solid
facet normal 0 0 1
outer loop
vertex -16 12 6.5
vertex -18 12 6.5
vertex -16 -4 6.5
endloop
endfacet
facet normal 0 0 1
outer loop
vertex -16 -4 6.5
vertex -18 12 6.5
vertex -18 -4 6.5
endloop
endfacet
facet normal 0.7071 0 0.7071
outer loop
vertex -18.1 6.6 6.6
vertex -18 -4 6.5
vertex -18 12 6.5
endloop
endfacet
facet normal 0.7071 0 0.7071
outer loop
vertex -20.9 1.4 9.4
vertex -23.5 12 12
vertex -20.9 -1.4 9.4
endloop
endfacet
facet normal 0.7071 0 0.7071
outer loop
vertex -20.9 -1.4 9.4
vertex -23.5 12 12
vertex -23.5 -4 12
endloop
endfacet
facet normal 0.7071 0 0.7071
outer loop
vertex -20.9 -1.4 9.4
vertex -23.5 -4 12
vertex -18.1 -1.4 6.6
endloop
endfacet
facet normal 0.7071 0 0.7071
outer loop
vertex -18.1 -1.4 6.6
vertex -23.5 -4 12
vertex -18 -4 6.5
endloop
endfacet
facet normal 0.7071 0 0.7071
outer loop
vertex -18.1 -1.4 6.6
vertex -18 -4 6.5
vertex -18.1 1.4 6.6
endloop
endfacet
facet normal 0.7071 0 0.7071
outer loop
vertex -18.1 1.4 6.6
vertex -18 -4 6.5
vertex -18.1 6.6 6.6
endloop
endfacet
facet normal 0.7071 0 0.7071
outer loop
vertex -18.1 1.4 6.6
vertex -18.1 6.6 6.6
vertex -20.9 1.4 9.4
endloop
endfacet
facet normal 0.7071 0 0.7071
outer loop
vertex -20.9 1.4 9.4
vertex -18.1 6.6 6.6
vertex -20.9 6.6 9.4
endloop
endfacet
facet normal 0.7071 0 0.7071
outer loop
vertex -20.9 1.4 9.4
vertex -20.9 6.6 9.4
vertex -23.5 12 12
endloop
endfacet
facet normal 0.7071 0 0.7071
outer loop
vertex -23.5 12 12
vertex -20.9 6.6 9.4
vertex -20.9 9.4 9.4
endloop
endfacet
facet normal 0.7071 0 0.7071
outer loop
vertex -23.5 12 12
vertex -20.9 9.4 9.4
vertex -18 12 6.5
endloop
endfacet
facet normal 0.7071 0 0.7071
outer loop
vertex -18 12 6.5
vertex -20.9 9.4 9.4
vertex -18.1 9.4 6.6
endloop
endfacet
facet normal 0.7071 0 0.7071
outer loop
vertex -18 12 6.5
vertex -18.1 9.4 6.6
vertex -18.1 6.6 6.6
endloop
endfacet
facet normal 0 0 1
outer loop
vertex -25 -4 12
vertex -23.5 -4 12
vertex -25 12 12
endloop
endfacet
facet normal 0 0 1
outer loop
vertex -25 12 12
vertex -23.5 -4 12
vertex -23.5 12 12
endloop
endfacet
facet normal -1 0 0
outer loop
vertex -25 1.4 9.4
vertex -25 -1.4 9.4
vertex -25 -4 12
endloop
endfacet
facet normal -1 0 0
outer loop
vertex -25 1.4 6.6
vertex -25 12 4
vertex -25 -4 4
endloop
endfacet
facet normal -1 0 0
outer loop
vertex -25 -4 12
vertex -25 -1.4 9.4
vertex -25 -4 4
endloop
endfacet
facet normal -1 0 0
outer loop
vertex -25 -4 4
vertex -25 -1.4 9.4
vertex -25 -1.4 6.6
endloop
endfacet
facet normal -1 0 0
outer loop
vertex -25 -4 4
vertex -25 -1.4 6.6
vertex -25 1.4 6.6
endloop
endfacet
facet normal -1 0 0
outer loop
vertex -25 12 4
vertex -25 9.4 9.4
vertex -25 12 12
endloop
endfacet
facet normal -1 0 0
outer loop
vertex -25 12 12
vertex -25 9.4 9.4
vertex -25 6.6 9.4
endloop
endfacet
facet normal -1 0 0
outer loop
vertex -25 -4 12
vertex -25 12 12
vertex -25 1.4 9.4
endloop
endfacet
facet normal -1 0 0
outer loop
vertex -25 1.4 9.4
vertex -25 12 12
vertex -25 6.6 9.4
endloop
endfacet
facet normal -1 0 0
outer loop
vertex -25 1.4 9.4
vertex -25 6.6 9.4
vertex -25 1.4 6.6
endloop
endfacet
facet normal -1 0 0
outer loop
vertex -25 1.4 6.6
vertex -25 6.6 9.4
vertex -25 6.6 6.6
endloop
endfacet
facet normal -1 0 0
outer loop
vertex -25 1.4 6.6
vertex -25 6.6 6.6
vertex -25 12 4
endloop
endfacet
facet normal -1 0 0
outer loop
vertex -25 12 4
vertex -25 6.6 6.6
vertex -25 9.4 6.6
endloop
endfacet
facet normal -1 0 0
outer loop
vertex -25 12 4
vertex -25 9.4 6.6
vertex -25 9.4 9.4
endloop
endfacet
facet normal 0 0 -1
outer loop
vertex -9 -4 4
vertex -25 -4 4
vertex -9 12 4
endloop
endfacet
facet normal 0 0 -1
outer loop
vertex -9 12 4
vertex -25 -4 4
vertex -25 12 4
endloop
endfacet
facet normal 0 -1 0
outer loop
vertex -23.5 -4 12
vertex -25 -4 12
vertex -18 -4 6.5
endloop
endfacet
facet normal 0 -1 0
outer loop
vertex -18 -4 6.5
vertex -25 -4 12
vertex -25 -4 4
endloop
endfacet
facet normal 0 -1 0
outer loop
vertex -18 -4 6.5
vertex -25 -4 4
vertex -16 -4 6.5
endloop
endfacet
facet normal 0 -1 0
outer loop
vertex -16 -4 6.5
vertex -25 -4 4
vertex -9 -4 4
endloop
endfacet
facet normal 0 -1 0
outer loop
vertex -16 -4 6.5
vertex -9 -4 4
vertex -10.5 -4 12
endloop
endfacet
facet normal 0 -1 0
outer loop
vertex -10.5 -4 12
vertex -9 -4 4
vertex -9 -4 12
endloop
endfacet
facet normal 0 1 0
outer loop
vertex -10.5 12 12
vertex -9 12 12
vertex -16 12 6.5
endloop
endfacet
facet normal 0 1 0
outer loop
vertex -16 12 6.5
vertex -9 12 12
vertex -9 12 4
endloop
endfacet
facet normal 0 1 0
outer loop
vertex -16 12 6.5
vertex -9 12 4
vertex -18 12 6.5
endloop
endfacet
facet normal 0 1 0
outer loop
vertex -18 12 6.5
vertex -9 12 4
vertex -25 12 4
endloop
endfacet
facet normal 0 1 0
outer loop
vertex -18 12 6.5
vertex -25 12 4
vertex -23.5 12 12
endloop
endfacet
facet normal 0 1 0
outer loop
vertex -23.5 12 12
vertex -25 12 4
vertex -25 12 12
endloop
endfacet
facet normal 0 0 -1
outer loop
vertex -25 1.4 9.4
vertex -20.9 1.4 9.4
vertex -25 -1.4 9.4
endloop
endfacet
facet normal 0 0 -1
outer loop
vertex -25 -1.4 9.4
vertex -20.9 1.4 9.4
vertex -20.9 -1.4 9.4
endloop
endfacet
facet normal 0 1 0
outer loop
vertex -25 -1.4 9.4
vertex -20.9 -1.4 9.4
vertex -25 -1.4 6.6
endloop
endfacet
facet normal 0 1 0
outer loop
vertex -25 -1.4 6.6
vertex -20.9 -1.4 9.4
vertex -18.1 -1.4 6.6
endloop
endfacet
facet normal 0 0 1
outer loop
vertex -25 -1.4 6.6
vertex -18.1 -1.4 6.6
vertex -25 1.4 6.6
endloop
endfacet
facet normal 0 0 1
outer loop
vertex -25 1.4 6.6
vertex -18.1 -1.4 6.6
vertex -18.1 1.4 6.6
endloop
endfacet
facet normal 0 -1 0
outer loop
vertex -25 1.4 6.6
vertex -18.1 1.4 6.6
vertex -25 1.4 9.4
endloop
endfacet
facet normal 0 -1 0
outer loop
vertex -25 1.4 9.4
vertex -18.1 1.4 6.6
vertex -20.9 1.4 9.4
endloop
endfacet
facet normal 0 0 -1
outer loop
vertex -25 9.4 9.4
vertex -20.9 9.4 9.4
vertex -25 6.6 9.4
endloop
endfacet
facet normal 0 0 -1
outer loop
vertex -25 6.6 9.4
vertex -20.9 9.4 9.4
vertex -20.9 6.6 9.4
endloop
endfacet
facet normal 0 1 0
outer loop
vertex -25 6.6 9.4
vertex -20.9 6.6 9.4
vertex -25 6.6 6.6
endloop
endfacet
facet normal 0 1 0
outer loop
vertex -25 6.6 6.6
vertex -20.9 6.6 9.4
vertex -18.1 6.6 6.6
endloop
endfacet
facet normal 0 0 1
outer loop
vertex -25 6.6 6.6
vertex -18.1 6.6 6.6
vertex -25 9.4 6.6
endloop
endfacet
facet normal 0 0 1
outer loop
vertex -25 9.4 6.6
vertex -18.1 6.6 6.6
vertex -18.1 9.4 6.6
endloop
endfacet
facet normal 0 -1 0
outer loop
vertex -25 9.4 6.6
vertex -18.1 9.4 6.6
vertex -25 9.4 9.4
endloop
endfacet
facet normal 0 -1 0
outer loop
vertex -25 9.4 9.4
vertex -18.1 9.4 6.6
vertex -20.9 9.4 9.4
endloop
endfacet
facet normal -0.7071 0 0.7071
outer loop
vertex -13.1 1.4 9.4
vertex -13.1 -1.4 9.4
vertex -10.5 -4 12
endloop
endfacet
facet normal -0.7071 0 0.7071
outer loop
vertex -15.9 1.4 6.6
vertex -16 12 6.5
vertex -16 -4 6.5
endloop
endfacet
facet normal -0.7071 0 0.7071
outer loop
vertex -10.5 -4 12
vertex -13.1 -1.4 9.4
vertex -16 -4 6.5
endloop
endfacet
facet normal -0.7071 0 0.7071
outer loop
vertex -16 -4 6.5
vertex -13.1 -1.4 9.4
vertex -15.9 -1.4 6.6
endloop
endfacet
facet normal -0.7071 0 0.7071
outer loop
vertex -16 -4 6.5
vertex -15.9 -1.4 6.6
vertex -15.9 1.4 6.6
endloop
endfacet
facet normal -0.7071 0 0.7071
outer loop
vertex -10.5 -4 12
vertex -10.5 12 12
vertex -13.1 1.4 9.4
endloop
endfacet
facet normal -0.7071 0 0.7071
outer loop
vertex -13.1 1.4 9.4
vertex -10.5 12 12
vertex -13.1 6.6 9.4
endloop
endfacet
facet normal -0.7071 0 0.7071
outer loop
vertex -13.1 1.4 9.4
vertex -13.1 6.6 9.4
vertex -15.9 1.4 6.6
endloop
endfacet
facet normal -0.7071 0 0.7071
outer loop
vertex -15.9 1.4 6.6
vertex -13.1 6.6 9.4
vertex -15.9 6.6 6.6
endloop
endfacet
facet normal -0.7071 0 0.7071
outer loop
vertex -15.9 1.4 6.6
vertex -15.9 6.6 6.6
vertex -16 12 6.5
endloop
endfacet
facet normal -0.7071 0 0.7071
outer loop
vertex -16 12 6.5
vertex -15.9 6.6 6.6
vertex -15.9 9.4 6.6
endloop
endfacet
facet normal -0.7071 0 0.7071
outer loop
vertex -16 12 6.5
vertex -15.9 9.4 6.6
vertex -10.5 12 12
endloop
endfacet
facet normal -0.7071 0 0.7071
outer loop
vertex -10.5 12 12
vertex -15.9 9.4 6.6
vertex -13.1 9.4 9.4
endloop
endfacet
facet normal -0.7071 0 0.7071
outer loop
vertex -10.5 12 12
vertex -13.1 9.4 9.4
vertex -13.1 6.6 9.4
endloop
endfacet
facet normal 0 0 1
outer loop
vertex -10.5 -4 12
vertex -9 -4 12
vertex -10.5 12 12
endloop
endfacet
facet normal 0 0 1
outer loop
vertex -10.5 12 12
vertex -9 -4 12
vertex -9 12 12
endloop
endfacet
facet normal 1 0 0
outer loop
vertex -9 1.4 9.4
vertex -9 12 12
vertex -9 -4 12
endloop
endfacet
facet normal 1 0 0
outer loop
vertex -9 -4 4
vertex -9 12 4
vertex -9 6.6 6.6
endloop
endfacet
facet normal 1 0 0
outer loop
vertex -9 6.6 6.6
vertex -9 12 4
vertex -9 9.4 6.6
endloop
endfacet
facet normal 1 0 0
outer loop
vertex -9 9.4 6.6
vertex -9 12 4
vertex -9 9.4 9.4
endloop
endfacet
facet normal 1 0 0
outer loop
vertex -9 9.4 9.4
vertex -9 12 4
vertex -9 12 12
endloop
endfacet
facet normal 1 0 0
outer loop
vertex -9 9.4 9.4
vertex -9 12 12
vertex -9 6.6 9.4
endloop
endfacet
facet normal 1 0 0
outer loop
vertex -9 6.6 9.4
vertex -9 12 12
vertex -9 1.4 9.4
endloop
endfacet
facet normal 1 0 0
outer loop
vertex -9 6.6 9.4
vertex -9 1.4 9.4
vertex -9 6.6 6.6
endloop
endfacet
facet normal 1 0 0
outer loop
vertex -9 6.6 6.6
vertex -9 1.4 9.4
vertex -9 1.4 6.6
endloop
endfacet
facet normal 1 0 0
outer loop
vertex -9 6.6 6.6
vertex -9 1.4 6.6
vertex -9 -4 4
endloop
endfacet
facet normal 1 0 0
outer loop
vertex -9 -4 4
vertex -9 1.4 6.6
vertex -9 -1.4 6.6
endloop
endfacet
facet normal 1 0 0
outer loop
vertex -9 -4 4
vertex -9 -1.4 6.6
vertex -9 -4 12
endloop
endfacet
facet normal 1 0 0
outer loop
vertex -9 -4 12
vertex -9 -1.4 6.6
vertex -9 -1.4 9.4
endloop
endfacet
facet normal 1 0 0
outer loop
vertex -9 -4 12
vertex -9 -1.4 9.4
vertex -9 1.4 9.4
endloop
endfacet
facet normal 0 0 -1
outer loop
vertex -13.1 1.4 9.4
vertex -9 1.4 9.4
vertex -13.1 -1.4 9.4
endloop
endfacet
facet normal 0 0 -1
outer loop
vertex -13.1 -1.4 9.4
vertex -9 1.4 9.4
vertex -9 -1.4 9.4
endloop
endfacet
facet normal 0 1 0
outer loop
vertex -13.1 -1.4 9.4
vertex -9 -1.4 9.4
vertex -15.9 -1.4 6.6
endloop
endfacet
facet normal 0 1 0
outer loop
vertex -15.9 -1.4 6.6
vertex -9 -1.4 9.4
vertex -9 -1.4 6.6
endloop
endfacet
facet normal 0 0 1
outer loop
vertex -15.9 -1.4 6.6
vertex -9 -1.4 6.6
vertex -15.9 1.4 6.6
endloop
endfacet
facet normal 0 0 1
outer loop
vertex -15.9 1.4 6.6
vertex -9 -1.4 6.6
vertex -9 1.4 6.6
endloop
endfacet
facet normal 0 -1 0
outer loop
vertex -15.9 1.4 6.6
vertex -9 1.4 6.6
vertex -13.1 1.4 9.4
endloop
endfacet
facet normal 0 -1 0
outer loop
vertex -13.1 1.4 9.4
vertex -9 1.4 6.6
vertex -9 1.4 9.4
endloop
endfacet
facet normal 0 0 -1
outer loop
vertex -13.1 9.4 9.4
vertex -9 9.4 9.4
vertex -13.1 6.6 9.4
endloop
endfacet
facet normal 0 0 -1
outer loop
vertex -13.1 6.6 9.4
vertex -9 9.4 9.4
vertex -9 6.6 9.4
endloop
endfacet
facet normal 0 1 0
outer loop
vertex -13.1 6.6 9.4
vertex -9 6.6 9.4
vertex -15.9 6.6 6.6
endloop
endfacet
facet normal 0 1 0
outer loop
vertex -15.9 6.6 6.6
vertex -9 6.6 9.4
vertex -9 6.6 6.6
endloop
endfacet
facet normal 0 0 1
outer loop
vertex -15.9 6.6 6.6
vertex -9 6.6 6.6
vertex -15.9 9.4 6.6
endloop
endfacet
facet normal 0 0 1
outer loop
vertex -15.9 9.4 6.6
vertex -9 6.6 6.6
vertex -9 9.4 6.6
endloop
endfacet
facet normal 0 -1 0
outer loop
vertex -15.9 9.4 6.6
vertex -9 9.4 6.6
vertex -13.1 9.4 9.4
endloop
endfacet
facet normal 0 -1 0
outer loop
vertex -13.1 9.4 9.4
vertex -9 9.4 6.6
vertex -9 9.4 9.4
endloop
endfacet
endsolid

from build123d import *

# Parameters (mm, degrees)
RESSALTO_EXTRUS_O1_DEPTH  = 16
ESBO_O2_W                 = 2.8
ESBO_O2_H                 = 2.8
CORTE_EXTRUS_O1_DEPTH     = 54.103672189
ESBO_O4_W                 = 2.8
ESBO_O4_H                 = 2.8
CORTE_EXTRUS_O2_DEPTH     = 31.186917696
CORPO_MOVER_COPIAR1_ANGLE = 90
ESBO_O6_W                 = 30
ESBO_O6_H                 = 16
CORTE_EXTRUS_O3_DEPTH     = 29.861739379
ESBO_O7_W                 = 25.221413321
ESBO_O7_H                 = 12.57615678
RESSALTO_EXTRUS_O2_DEPTH  = 2.5
ESBO_O8_W                 = 2.8
ESBO_O8_H                 = 2.8
CORTE_EXTRUS_O4_DEPTH     = 29.271009886
ESBO_O10_W                = 32
ESBO_O10_H                = 16
CORTE_EXTRUS_O5_DEPTH     = 10


with BuildPart() as part:
    # Esboço1 → Ressalto-extrusão1 (new body)
    with BuildSketch(Plane.XY):
        Polygon((-25, 0), (25, 0), (25, 8), (23.5, 8), (18, 2.5), (-18, 2.5), (-23.5, 8), (-25, 8), align=None)
    extrude(amount=RESSALTO_EXTRUS_O1_DEPTH)

    # Esboço2 → Corte-extrusão1 (cut, through all)
    with BuildSketch(Plane(origin=(25, 0, 0), x_dir=(0, 0, -1), z_dir=(1, 0, 0))):
        with Locations((-4, 4)):
            Rectangle(ESBO_O2_W, ESBO_O2_H)
        with Locations((-12, 4)):
            Rectangle(ESBO_O2_W, ESBO_O2_H)
    extrude(amount=-CORTE_EXTRUS_O1_DEPTH, mode=Mode.SUBTRACT)

    # Esboço4 → Corte-extrusão2 (cut, through all)
    with BuildSketch(Plane(origin=(0, 2.5, 0), x_dir=(1, 0, 0), z_dir=(0, 1, 0))):
        with Locations((-16, -4)):
            Rectangle(ESBO_O4_W, ESBO_O4_H)
        with Locations((-8, -4)):
            Rectangle(ESBO_O4_W, ESBO_O4_H)
        with Locations((0, -4)):
            Rectangle(ESBO_O4_W, ESBO_O4_H)
        with Locations((8, -4)):
            Rectangle(ESBO_O4_W, ESBO_O4_H)
        with Locations((16, -4)):
            Rectangle(ESBO_O4_W, ESBO_O4_H)
        with Locations((-8, -12)):
            Rectangle(ESBO_O4_W, ESBO_O4_H)
        with Locations((0, -12)):
            Rectangle(ESBO_O4_W, ESBO_O4_H)
        with Locations((8, -12)):
            Rectangle(ESBO_O4_W, ESBO_O4_H)
        with Locations((16, -12)):
            Rectangle(ESBO_O4_W, ESBO_O4_H)
        with Locations((-16, -12)):
            Rectangle(ESBO_O4_W, ESBO_O4_H)
    extrude(amount=-CORTE_EXTRUS_O2_DEPTH, mode=Mode.SUBTRACT)


with BuildPart() as part_1:
    # Corpo-Mover/Copiar1: moved
    add(part.part.rotate(Axis((0, 4, 8), (1, 0, 0)), CORPO_MOVER_COPIAR1_ANGLE))

    # Esboço6 → Corte-extrusão3 (cut, through all)
    with BuildSketch(Plane(origin=(0, 0, 4), x_dir=(-1, 0, 0), z_dir=(0, 0, -1))):
        with Locations((-10, 4)):
            Rectangle(ESBO_O6_W, ESBO_O6_H)
    extrude(amount=-CORTE_EXTRUS_O3_DEPTH, mode=Mode.SUBTRACT)

    # Espelhar3: part across plane


with BuildPart() as part_2:
    add(part_1.part)
    add(part_1.part.mirror(Plane(origin=(-5, -4, 12), x_dir=(0, 0, 1), z_dir=(-1, 0, 0))))

    # Esboço7 → Ressalto-extrusão2 (add, through all)
    with BuildSketch(Plane.XY.offset(6.5)):
        with Locations((-4.971284079, 3.626460754)):
            Rectangle(ESBO_O7_W, ESBO_O7_H)
    extrude(amount=-RESSALTO_EXTRUS_O2_DEPTH)

    # Esboço8 → Corte-extrusão4 (cut, through all)
    with BuildSketch(Plane.XY.offset(6.5)):
        with Locations((-5, 8)):
            Rectangle(ESBO_O8_W, ESBO_O8_H)
        with Locations((-13, 8)):
            Rectangle(ESBO_O8_W, ESBO_O8_H)
        with Locations((3, 8)):
            Rectangle(ESBO_O8_W, ESBO_O8_H)
        with Locations((-5, 0)):
            Rectangle(ESBO_O8_W, ESBO_O8_H)
        with Locations((3, 0)):
            Rectangle(ESBO_O8_W, ESBO_O8_H)
        with Locations((-13, 0)):
            Rectangle(ESBO_O8_W, ESBO_O8_H)
    extrude(amount=-CORTE_EXTRUS_O4_DEPTH, mode=Mode.SUBTRACT)

    # Esboço10 → Corte-extrusão5 (cut)
    with BuildSketch(Plane(origin=(0, 0, 4), x_dir=(-1, 0, 0), z_dir=(0, 0, -1))):
        with Locations((1, 4)):
            Rectangle(ESBO_O10_W, ESBO_O10_H)
    extrude(amount=-CORTE_EXTRUS_O5_DEPTH, mode=Mode.SUBTRACT)

    # Espelhar4: part across plane


with BuildPart() as part_3:
    add(part_2.part)
    add(part_2.part.mirror(Plane(origin=(-17, -4, 14), x_dir=(0, 0, 1), z_dir=(-1, 0, 0))))


solid = part_3.part
